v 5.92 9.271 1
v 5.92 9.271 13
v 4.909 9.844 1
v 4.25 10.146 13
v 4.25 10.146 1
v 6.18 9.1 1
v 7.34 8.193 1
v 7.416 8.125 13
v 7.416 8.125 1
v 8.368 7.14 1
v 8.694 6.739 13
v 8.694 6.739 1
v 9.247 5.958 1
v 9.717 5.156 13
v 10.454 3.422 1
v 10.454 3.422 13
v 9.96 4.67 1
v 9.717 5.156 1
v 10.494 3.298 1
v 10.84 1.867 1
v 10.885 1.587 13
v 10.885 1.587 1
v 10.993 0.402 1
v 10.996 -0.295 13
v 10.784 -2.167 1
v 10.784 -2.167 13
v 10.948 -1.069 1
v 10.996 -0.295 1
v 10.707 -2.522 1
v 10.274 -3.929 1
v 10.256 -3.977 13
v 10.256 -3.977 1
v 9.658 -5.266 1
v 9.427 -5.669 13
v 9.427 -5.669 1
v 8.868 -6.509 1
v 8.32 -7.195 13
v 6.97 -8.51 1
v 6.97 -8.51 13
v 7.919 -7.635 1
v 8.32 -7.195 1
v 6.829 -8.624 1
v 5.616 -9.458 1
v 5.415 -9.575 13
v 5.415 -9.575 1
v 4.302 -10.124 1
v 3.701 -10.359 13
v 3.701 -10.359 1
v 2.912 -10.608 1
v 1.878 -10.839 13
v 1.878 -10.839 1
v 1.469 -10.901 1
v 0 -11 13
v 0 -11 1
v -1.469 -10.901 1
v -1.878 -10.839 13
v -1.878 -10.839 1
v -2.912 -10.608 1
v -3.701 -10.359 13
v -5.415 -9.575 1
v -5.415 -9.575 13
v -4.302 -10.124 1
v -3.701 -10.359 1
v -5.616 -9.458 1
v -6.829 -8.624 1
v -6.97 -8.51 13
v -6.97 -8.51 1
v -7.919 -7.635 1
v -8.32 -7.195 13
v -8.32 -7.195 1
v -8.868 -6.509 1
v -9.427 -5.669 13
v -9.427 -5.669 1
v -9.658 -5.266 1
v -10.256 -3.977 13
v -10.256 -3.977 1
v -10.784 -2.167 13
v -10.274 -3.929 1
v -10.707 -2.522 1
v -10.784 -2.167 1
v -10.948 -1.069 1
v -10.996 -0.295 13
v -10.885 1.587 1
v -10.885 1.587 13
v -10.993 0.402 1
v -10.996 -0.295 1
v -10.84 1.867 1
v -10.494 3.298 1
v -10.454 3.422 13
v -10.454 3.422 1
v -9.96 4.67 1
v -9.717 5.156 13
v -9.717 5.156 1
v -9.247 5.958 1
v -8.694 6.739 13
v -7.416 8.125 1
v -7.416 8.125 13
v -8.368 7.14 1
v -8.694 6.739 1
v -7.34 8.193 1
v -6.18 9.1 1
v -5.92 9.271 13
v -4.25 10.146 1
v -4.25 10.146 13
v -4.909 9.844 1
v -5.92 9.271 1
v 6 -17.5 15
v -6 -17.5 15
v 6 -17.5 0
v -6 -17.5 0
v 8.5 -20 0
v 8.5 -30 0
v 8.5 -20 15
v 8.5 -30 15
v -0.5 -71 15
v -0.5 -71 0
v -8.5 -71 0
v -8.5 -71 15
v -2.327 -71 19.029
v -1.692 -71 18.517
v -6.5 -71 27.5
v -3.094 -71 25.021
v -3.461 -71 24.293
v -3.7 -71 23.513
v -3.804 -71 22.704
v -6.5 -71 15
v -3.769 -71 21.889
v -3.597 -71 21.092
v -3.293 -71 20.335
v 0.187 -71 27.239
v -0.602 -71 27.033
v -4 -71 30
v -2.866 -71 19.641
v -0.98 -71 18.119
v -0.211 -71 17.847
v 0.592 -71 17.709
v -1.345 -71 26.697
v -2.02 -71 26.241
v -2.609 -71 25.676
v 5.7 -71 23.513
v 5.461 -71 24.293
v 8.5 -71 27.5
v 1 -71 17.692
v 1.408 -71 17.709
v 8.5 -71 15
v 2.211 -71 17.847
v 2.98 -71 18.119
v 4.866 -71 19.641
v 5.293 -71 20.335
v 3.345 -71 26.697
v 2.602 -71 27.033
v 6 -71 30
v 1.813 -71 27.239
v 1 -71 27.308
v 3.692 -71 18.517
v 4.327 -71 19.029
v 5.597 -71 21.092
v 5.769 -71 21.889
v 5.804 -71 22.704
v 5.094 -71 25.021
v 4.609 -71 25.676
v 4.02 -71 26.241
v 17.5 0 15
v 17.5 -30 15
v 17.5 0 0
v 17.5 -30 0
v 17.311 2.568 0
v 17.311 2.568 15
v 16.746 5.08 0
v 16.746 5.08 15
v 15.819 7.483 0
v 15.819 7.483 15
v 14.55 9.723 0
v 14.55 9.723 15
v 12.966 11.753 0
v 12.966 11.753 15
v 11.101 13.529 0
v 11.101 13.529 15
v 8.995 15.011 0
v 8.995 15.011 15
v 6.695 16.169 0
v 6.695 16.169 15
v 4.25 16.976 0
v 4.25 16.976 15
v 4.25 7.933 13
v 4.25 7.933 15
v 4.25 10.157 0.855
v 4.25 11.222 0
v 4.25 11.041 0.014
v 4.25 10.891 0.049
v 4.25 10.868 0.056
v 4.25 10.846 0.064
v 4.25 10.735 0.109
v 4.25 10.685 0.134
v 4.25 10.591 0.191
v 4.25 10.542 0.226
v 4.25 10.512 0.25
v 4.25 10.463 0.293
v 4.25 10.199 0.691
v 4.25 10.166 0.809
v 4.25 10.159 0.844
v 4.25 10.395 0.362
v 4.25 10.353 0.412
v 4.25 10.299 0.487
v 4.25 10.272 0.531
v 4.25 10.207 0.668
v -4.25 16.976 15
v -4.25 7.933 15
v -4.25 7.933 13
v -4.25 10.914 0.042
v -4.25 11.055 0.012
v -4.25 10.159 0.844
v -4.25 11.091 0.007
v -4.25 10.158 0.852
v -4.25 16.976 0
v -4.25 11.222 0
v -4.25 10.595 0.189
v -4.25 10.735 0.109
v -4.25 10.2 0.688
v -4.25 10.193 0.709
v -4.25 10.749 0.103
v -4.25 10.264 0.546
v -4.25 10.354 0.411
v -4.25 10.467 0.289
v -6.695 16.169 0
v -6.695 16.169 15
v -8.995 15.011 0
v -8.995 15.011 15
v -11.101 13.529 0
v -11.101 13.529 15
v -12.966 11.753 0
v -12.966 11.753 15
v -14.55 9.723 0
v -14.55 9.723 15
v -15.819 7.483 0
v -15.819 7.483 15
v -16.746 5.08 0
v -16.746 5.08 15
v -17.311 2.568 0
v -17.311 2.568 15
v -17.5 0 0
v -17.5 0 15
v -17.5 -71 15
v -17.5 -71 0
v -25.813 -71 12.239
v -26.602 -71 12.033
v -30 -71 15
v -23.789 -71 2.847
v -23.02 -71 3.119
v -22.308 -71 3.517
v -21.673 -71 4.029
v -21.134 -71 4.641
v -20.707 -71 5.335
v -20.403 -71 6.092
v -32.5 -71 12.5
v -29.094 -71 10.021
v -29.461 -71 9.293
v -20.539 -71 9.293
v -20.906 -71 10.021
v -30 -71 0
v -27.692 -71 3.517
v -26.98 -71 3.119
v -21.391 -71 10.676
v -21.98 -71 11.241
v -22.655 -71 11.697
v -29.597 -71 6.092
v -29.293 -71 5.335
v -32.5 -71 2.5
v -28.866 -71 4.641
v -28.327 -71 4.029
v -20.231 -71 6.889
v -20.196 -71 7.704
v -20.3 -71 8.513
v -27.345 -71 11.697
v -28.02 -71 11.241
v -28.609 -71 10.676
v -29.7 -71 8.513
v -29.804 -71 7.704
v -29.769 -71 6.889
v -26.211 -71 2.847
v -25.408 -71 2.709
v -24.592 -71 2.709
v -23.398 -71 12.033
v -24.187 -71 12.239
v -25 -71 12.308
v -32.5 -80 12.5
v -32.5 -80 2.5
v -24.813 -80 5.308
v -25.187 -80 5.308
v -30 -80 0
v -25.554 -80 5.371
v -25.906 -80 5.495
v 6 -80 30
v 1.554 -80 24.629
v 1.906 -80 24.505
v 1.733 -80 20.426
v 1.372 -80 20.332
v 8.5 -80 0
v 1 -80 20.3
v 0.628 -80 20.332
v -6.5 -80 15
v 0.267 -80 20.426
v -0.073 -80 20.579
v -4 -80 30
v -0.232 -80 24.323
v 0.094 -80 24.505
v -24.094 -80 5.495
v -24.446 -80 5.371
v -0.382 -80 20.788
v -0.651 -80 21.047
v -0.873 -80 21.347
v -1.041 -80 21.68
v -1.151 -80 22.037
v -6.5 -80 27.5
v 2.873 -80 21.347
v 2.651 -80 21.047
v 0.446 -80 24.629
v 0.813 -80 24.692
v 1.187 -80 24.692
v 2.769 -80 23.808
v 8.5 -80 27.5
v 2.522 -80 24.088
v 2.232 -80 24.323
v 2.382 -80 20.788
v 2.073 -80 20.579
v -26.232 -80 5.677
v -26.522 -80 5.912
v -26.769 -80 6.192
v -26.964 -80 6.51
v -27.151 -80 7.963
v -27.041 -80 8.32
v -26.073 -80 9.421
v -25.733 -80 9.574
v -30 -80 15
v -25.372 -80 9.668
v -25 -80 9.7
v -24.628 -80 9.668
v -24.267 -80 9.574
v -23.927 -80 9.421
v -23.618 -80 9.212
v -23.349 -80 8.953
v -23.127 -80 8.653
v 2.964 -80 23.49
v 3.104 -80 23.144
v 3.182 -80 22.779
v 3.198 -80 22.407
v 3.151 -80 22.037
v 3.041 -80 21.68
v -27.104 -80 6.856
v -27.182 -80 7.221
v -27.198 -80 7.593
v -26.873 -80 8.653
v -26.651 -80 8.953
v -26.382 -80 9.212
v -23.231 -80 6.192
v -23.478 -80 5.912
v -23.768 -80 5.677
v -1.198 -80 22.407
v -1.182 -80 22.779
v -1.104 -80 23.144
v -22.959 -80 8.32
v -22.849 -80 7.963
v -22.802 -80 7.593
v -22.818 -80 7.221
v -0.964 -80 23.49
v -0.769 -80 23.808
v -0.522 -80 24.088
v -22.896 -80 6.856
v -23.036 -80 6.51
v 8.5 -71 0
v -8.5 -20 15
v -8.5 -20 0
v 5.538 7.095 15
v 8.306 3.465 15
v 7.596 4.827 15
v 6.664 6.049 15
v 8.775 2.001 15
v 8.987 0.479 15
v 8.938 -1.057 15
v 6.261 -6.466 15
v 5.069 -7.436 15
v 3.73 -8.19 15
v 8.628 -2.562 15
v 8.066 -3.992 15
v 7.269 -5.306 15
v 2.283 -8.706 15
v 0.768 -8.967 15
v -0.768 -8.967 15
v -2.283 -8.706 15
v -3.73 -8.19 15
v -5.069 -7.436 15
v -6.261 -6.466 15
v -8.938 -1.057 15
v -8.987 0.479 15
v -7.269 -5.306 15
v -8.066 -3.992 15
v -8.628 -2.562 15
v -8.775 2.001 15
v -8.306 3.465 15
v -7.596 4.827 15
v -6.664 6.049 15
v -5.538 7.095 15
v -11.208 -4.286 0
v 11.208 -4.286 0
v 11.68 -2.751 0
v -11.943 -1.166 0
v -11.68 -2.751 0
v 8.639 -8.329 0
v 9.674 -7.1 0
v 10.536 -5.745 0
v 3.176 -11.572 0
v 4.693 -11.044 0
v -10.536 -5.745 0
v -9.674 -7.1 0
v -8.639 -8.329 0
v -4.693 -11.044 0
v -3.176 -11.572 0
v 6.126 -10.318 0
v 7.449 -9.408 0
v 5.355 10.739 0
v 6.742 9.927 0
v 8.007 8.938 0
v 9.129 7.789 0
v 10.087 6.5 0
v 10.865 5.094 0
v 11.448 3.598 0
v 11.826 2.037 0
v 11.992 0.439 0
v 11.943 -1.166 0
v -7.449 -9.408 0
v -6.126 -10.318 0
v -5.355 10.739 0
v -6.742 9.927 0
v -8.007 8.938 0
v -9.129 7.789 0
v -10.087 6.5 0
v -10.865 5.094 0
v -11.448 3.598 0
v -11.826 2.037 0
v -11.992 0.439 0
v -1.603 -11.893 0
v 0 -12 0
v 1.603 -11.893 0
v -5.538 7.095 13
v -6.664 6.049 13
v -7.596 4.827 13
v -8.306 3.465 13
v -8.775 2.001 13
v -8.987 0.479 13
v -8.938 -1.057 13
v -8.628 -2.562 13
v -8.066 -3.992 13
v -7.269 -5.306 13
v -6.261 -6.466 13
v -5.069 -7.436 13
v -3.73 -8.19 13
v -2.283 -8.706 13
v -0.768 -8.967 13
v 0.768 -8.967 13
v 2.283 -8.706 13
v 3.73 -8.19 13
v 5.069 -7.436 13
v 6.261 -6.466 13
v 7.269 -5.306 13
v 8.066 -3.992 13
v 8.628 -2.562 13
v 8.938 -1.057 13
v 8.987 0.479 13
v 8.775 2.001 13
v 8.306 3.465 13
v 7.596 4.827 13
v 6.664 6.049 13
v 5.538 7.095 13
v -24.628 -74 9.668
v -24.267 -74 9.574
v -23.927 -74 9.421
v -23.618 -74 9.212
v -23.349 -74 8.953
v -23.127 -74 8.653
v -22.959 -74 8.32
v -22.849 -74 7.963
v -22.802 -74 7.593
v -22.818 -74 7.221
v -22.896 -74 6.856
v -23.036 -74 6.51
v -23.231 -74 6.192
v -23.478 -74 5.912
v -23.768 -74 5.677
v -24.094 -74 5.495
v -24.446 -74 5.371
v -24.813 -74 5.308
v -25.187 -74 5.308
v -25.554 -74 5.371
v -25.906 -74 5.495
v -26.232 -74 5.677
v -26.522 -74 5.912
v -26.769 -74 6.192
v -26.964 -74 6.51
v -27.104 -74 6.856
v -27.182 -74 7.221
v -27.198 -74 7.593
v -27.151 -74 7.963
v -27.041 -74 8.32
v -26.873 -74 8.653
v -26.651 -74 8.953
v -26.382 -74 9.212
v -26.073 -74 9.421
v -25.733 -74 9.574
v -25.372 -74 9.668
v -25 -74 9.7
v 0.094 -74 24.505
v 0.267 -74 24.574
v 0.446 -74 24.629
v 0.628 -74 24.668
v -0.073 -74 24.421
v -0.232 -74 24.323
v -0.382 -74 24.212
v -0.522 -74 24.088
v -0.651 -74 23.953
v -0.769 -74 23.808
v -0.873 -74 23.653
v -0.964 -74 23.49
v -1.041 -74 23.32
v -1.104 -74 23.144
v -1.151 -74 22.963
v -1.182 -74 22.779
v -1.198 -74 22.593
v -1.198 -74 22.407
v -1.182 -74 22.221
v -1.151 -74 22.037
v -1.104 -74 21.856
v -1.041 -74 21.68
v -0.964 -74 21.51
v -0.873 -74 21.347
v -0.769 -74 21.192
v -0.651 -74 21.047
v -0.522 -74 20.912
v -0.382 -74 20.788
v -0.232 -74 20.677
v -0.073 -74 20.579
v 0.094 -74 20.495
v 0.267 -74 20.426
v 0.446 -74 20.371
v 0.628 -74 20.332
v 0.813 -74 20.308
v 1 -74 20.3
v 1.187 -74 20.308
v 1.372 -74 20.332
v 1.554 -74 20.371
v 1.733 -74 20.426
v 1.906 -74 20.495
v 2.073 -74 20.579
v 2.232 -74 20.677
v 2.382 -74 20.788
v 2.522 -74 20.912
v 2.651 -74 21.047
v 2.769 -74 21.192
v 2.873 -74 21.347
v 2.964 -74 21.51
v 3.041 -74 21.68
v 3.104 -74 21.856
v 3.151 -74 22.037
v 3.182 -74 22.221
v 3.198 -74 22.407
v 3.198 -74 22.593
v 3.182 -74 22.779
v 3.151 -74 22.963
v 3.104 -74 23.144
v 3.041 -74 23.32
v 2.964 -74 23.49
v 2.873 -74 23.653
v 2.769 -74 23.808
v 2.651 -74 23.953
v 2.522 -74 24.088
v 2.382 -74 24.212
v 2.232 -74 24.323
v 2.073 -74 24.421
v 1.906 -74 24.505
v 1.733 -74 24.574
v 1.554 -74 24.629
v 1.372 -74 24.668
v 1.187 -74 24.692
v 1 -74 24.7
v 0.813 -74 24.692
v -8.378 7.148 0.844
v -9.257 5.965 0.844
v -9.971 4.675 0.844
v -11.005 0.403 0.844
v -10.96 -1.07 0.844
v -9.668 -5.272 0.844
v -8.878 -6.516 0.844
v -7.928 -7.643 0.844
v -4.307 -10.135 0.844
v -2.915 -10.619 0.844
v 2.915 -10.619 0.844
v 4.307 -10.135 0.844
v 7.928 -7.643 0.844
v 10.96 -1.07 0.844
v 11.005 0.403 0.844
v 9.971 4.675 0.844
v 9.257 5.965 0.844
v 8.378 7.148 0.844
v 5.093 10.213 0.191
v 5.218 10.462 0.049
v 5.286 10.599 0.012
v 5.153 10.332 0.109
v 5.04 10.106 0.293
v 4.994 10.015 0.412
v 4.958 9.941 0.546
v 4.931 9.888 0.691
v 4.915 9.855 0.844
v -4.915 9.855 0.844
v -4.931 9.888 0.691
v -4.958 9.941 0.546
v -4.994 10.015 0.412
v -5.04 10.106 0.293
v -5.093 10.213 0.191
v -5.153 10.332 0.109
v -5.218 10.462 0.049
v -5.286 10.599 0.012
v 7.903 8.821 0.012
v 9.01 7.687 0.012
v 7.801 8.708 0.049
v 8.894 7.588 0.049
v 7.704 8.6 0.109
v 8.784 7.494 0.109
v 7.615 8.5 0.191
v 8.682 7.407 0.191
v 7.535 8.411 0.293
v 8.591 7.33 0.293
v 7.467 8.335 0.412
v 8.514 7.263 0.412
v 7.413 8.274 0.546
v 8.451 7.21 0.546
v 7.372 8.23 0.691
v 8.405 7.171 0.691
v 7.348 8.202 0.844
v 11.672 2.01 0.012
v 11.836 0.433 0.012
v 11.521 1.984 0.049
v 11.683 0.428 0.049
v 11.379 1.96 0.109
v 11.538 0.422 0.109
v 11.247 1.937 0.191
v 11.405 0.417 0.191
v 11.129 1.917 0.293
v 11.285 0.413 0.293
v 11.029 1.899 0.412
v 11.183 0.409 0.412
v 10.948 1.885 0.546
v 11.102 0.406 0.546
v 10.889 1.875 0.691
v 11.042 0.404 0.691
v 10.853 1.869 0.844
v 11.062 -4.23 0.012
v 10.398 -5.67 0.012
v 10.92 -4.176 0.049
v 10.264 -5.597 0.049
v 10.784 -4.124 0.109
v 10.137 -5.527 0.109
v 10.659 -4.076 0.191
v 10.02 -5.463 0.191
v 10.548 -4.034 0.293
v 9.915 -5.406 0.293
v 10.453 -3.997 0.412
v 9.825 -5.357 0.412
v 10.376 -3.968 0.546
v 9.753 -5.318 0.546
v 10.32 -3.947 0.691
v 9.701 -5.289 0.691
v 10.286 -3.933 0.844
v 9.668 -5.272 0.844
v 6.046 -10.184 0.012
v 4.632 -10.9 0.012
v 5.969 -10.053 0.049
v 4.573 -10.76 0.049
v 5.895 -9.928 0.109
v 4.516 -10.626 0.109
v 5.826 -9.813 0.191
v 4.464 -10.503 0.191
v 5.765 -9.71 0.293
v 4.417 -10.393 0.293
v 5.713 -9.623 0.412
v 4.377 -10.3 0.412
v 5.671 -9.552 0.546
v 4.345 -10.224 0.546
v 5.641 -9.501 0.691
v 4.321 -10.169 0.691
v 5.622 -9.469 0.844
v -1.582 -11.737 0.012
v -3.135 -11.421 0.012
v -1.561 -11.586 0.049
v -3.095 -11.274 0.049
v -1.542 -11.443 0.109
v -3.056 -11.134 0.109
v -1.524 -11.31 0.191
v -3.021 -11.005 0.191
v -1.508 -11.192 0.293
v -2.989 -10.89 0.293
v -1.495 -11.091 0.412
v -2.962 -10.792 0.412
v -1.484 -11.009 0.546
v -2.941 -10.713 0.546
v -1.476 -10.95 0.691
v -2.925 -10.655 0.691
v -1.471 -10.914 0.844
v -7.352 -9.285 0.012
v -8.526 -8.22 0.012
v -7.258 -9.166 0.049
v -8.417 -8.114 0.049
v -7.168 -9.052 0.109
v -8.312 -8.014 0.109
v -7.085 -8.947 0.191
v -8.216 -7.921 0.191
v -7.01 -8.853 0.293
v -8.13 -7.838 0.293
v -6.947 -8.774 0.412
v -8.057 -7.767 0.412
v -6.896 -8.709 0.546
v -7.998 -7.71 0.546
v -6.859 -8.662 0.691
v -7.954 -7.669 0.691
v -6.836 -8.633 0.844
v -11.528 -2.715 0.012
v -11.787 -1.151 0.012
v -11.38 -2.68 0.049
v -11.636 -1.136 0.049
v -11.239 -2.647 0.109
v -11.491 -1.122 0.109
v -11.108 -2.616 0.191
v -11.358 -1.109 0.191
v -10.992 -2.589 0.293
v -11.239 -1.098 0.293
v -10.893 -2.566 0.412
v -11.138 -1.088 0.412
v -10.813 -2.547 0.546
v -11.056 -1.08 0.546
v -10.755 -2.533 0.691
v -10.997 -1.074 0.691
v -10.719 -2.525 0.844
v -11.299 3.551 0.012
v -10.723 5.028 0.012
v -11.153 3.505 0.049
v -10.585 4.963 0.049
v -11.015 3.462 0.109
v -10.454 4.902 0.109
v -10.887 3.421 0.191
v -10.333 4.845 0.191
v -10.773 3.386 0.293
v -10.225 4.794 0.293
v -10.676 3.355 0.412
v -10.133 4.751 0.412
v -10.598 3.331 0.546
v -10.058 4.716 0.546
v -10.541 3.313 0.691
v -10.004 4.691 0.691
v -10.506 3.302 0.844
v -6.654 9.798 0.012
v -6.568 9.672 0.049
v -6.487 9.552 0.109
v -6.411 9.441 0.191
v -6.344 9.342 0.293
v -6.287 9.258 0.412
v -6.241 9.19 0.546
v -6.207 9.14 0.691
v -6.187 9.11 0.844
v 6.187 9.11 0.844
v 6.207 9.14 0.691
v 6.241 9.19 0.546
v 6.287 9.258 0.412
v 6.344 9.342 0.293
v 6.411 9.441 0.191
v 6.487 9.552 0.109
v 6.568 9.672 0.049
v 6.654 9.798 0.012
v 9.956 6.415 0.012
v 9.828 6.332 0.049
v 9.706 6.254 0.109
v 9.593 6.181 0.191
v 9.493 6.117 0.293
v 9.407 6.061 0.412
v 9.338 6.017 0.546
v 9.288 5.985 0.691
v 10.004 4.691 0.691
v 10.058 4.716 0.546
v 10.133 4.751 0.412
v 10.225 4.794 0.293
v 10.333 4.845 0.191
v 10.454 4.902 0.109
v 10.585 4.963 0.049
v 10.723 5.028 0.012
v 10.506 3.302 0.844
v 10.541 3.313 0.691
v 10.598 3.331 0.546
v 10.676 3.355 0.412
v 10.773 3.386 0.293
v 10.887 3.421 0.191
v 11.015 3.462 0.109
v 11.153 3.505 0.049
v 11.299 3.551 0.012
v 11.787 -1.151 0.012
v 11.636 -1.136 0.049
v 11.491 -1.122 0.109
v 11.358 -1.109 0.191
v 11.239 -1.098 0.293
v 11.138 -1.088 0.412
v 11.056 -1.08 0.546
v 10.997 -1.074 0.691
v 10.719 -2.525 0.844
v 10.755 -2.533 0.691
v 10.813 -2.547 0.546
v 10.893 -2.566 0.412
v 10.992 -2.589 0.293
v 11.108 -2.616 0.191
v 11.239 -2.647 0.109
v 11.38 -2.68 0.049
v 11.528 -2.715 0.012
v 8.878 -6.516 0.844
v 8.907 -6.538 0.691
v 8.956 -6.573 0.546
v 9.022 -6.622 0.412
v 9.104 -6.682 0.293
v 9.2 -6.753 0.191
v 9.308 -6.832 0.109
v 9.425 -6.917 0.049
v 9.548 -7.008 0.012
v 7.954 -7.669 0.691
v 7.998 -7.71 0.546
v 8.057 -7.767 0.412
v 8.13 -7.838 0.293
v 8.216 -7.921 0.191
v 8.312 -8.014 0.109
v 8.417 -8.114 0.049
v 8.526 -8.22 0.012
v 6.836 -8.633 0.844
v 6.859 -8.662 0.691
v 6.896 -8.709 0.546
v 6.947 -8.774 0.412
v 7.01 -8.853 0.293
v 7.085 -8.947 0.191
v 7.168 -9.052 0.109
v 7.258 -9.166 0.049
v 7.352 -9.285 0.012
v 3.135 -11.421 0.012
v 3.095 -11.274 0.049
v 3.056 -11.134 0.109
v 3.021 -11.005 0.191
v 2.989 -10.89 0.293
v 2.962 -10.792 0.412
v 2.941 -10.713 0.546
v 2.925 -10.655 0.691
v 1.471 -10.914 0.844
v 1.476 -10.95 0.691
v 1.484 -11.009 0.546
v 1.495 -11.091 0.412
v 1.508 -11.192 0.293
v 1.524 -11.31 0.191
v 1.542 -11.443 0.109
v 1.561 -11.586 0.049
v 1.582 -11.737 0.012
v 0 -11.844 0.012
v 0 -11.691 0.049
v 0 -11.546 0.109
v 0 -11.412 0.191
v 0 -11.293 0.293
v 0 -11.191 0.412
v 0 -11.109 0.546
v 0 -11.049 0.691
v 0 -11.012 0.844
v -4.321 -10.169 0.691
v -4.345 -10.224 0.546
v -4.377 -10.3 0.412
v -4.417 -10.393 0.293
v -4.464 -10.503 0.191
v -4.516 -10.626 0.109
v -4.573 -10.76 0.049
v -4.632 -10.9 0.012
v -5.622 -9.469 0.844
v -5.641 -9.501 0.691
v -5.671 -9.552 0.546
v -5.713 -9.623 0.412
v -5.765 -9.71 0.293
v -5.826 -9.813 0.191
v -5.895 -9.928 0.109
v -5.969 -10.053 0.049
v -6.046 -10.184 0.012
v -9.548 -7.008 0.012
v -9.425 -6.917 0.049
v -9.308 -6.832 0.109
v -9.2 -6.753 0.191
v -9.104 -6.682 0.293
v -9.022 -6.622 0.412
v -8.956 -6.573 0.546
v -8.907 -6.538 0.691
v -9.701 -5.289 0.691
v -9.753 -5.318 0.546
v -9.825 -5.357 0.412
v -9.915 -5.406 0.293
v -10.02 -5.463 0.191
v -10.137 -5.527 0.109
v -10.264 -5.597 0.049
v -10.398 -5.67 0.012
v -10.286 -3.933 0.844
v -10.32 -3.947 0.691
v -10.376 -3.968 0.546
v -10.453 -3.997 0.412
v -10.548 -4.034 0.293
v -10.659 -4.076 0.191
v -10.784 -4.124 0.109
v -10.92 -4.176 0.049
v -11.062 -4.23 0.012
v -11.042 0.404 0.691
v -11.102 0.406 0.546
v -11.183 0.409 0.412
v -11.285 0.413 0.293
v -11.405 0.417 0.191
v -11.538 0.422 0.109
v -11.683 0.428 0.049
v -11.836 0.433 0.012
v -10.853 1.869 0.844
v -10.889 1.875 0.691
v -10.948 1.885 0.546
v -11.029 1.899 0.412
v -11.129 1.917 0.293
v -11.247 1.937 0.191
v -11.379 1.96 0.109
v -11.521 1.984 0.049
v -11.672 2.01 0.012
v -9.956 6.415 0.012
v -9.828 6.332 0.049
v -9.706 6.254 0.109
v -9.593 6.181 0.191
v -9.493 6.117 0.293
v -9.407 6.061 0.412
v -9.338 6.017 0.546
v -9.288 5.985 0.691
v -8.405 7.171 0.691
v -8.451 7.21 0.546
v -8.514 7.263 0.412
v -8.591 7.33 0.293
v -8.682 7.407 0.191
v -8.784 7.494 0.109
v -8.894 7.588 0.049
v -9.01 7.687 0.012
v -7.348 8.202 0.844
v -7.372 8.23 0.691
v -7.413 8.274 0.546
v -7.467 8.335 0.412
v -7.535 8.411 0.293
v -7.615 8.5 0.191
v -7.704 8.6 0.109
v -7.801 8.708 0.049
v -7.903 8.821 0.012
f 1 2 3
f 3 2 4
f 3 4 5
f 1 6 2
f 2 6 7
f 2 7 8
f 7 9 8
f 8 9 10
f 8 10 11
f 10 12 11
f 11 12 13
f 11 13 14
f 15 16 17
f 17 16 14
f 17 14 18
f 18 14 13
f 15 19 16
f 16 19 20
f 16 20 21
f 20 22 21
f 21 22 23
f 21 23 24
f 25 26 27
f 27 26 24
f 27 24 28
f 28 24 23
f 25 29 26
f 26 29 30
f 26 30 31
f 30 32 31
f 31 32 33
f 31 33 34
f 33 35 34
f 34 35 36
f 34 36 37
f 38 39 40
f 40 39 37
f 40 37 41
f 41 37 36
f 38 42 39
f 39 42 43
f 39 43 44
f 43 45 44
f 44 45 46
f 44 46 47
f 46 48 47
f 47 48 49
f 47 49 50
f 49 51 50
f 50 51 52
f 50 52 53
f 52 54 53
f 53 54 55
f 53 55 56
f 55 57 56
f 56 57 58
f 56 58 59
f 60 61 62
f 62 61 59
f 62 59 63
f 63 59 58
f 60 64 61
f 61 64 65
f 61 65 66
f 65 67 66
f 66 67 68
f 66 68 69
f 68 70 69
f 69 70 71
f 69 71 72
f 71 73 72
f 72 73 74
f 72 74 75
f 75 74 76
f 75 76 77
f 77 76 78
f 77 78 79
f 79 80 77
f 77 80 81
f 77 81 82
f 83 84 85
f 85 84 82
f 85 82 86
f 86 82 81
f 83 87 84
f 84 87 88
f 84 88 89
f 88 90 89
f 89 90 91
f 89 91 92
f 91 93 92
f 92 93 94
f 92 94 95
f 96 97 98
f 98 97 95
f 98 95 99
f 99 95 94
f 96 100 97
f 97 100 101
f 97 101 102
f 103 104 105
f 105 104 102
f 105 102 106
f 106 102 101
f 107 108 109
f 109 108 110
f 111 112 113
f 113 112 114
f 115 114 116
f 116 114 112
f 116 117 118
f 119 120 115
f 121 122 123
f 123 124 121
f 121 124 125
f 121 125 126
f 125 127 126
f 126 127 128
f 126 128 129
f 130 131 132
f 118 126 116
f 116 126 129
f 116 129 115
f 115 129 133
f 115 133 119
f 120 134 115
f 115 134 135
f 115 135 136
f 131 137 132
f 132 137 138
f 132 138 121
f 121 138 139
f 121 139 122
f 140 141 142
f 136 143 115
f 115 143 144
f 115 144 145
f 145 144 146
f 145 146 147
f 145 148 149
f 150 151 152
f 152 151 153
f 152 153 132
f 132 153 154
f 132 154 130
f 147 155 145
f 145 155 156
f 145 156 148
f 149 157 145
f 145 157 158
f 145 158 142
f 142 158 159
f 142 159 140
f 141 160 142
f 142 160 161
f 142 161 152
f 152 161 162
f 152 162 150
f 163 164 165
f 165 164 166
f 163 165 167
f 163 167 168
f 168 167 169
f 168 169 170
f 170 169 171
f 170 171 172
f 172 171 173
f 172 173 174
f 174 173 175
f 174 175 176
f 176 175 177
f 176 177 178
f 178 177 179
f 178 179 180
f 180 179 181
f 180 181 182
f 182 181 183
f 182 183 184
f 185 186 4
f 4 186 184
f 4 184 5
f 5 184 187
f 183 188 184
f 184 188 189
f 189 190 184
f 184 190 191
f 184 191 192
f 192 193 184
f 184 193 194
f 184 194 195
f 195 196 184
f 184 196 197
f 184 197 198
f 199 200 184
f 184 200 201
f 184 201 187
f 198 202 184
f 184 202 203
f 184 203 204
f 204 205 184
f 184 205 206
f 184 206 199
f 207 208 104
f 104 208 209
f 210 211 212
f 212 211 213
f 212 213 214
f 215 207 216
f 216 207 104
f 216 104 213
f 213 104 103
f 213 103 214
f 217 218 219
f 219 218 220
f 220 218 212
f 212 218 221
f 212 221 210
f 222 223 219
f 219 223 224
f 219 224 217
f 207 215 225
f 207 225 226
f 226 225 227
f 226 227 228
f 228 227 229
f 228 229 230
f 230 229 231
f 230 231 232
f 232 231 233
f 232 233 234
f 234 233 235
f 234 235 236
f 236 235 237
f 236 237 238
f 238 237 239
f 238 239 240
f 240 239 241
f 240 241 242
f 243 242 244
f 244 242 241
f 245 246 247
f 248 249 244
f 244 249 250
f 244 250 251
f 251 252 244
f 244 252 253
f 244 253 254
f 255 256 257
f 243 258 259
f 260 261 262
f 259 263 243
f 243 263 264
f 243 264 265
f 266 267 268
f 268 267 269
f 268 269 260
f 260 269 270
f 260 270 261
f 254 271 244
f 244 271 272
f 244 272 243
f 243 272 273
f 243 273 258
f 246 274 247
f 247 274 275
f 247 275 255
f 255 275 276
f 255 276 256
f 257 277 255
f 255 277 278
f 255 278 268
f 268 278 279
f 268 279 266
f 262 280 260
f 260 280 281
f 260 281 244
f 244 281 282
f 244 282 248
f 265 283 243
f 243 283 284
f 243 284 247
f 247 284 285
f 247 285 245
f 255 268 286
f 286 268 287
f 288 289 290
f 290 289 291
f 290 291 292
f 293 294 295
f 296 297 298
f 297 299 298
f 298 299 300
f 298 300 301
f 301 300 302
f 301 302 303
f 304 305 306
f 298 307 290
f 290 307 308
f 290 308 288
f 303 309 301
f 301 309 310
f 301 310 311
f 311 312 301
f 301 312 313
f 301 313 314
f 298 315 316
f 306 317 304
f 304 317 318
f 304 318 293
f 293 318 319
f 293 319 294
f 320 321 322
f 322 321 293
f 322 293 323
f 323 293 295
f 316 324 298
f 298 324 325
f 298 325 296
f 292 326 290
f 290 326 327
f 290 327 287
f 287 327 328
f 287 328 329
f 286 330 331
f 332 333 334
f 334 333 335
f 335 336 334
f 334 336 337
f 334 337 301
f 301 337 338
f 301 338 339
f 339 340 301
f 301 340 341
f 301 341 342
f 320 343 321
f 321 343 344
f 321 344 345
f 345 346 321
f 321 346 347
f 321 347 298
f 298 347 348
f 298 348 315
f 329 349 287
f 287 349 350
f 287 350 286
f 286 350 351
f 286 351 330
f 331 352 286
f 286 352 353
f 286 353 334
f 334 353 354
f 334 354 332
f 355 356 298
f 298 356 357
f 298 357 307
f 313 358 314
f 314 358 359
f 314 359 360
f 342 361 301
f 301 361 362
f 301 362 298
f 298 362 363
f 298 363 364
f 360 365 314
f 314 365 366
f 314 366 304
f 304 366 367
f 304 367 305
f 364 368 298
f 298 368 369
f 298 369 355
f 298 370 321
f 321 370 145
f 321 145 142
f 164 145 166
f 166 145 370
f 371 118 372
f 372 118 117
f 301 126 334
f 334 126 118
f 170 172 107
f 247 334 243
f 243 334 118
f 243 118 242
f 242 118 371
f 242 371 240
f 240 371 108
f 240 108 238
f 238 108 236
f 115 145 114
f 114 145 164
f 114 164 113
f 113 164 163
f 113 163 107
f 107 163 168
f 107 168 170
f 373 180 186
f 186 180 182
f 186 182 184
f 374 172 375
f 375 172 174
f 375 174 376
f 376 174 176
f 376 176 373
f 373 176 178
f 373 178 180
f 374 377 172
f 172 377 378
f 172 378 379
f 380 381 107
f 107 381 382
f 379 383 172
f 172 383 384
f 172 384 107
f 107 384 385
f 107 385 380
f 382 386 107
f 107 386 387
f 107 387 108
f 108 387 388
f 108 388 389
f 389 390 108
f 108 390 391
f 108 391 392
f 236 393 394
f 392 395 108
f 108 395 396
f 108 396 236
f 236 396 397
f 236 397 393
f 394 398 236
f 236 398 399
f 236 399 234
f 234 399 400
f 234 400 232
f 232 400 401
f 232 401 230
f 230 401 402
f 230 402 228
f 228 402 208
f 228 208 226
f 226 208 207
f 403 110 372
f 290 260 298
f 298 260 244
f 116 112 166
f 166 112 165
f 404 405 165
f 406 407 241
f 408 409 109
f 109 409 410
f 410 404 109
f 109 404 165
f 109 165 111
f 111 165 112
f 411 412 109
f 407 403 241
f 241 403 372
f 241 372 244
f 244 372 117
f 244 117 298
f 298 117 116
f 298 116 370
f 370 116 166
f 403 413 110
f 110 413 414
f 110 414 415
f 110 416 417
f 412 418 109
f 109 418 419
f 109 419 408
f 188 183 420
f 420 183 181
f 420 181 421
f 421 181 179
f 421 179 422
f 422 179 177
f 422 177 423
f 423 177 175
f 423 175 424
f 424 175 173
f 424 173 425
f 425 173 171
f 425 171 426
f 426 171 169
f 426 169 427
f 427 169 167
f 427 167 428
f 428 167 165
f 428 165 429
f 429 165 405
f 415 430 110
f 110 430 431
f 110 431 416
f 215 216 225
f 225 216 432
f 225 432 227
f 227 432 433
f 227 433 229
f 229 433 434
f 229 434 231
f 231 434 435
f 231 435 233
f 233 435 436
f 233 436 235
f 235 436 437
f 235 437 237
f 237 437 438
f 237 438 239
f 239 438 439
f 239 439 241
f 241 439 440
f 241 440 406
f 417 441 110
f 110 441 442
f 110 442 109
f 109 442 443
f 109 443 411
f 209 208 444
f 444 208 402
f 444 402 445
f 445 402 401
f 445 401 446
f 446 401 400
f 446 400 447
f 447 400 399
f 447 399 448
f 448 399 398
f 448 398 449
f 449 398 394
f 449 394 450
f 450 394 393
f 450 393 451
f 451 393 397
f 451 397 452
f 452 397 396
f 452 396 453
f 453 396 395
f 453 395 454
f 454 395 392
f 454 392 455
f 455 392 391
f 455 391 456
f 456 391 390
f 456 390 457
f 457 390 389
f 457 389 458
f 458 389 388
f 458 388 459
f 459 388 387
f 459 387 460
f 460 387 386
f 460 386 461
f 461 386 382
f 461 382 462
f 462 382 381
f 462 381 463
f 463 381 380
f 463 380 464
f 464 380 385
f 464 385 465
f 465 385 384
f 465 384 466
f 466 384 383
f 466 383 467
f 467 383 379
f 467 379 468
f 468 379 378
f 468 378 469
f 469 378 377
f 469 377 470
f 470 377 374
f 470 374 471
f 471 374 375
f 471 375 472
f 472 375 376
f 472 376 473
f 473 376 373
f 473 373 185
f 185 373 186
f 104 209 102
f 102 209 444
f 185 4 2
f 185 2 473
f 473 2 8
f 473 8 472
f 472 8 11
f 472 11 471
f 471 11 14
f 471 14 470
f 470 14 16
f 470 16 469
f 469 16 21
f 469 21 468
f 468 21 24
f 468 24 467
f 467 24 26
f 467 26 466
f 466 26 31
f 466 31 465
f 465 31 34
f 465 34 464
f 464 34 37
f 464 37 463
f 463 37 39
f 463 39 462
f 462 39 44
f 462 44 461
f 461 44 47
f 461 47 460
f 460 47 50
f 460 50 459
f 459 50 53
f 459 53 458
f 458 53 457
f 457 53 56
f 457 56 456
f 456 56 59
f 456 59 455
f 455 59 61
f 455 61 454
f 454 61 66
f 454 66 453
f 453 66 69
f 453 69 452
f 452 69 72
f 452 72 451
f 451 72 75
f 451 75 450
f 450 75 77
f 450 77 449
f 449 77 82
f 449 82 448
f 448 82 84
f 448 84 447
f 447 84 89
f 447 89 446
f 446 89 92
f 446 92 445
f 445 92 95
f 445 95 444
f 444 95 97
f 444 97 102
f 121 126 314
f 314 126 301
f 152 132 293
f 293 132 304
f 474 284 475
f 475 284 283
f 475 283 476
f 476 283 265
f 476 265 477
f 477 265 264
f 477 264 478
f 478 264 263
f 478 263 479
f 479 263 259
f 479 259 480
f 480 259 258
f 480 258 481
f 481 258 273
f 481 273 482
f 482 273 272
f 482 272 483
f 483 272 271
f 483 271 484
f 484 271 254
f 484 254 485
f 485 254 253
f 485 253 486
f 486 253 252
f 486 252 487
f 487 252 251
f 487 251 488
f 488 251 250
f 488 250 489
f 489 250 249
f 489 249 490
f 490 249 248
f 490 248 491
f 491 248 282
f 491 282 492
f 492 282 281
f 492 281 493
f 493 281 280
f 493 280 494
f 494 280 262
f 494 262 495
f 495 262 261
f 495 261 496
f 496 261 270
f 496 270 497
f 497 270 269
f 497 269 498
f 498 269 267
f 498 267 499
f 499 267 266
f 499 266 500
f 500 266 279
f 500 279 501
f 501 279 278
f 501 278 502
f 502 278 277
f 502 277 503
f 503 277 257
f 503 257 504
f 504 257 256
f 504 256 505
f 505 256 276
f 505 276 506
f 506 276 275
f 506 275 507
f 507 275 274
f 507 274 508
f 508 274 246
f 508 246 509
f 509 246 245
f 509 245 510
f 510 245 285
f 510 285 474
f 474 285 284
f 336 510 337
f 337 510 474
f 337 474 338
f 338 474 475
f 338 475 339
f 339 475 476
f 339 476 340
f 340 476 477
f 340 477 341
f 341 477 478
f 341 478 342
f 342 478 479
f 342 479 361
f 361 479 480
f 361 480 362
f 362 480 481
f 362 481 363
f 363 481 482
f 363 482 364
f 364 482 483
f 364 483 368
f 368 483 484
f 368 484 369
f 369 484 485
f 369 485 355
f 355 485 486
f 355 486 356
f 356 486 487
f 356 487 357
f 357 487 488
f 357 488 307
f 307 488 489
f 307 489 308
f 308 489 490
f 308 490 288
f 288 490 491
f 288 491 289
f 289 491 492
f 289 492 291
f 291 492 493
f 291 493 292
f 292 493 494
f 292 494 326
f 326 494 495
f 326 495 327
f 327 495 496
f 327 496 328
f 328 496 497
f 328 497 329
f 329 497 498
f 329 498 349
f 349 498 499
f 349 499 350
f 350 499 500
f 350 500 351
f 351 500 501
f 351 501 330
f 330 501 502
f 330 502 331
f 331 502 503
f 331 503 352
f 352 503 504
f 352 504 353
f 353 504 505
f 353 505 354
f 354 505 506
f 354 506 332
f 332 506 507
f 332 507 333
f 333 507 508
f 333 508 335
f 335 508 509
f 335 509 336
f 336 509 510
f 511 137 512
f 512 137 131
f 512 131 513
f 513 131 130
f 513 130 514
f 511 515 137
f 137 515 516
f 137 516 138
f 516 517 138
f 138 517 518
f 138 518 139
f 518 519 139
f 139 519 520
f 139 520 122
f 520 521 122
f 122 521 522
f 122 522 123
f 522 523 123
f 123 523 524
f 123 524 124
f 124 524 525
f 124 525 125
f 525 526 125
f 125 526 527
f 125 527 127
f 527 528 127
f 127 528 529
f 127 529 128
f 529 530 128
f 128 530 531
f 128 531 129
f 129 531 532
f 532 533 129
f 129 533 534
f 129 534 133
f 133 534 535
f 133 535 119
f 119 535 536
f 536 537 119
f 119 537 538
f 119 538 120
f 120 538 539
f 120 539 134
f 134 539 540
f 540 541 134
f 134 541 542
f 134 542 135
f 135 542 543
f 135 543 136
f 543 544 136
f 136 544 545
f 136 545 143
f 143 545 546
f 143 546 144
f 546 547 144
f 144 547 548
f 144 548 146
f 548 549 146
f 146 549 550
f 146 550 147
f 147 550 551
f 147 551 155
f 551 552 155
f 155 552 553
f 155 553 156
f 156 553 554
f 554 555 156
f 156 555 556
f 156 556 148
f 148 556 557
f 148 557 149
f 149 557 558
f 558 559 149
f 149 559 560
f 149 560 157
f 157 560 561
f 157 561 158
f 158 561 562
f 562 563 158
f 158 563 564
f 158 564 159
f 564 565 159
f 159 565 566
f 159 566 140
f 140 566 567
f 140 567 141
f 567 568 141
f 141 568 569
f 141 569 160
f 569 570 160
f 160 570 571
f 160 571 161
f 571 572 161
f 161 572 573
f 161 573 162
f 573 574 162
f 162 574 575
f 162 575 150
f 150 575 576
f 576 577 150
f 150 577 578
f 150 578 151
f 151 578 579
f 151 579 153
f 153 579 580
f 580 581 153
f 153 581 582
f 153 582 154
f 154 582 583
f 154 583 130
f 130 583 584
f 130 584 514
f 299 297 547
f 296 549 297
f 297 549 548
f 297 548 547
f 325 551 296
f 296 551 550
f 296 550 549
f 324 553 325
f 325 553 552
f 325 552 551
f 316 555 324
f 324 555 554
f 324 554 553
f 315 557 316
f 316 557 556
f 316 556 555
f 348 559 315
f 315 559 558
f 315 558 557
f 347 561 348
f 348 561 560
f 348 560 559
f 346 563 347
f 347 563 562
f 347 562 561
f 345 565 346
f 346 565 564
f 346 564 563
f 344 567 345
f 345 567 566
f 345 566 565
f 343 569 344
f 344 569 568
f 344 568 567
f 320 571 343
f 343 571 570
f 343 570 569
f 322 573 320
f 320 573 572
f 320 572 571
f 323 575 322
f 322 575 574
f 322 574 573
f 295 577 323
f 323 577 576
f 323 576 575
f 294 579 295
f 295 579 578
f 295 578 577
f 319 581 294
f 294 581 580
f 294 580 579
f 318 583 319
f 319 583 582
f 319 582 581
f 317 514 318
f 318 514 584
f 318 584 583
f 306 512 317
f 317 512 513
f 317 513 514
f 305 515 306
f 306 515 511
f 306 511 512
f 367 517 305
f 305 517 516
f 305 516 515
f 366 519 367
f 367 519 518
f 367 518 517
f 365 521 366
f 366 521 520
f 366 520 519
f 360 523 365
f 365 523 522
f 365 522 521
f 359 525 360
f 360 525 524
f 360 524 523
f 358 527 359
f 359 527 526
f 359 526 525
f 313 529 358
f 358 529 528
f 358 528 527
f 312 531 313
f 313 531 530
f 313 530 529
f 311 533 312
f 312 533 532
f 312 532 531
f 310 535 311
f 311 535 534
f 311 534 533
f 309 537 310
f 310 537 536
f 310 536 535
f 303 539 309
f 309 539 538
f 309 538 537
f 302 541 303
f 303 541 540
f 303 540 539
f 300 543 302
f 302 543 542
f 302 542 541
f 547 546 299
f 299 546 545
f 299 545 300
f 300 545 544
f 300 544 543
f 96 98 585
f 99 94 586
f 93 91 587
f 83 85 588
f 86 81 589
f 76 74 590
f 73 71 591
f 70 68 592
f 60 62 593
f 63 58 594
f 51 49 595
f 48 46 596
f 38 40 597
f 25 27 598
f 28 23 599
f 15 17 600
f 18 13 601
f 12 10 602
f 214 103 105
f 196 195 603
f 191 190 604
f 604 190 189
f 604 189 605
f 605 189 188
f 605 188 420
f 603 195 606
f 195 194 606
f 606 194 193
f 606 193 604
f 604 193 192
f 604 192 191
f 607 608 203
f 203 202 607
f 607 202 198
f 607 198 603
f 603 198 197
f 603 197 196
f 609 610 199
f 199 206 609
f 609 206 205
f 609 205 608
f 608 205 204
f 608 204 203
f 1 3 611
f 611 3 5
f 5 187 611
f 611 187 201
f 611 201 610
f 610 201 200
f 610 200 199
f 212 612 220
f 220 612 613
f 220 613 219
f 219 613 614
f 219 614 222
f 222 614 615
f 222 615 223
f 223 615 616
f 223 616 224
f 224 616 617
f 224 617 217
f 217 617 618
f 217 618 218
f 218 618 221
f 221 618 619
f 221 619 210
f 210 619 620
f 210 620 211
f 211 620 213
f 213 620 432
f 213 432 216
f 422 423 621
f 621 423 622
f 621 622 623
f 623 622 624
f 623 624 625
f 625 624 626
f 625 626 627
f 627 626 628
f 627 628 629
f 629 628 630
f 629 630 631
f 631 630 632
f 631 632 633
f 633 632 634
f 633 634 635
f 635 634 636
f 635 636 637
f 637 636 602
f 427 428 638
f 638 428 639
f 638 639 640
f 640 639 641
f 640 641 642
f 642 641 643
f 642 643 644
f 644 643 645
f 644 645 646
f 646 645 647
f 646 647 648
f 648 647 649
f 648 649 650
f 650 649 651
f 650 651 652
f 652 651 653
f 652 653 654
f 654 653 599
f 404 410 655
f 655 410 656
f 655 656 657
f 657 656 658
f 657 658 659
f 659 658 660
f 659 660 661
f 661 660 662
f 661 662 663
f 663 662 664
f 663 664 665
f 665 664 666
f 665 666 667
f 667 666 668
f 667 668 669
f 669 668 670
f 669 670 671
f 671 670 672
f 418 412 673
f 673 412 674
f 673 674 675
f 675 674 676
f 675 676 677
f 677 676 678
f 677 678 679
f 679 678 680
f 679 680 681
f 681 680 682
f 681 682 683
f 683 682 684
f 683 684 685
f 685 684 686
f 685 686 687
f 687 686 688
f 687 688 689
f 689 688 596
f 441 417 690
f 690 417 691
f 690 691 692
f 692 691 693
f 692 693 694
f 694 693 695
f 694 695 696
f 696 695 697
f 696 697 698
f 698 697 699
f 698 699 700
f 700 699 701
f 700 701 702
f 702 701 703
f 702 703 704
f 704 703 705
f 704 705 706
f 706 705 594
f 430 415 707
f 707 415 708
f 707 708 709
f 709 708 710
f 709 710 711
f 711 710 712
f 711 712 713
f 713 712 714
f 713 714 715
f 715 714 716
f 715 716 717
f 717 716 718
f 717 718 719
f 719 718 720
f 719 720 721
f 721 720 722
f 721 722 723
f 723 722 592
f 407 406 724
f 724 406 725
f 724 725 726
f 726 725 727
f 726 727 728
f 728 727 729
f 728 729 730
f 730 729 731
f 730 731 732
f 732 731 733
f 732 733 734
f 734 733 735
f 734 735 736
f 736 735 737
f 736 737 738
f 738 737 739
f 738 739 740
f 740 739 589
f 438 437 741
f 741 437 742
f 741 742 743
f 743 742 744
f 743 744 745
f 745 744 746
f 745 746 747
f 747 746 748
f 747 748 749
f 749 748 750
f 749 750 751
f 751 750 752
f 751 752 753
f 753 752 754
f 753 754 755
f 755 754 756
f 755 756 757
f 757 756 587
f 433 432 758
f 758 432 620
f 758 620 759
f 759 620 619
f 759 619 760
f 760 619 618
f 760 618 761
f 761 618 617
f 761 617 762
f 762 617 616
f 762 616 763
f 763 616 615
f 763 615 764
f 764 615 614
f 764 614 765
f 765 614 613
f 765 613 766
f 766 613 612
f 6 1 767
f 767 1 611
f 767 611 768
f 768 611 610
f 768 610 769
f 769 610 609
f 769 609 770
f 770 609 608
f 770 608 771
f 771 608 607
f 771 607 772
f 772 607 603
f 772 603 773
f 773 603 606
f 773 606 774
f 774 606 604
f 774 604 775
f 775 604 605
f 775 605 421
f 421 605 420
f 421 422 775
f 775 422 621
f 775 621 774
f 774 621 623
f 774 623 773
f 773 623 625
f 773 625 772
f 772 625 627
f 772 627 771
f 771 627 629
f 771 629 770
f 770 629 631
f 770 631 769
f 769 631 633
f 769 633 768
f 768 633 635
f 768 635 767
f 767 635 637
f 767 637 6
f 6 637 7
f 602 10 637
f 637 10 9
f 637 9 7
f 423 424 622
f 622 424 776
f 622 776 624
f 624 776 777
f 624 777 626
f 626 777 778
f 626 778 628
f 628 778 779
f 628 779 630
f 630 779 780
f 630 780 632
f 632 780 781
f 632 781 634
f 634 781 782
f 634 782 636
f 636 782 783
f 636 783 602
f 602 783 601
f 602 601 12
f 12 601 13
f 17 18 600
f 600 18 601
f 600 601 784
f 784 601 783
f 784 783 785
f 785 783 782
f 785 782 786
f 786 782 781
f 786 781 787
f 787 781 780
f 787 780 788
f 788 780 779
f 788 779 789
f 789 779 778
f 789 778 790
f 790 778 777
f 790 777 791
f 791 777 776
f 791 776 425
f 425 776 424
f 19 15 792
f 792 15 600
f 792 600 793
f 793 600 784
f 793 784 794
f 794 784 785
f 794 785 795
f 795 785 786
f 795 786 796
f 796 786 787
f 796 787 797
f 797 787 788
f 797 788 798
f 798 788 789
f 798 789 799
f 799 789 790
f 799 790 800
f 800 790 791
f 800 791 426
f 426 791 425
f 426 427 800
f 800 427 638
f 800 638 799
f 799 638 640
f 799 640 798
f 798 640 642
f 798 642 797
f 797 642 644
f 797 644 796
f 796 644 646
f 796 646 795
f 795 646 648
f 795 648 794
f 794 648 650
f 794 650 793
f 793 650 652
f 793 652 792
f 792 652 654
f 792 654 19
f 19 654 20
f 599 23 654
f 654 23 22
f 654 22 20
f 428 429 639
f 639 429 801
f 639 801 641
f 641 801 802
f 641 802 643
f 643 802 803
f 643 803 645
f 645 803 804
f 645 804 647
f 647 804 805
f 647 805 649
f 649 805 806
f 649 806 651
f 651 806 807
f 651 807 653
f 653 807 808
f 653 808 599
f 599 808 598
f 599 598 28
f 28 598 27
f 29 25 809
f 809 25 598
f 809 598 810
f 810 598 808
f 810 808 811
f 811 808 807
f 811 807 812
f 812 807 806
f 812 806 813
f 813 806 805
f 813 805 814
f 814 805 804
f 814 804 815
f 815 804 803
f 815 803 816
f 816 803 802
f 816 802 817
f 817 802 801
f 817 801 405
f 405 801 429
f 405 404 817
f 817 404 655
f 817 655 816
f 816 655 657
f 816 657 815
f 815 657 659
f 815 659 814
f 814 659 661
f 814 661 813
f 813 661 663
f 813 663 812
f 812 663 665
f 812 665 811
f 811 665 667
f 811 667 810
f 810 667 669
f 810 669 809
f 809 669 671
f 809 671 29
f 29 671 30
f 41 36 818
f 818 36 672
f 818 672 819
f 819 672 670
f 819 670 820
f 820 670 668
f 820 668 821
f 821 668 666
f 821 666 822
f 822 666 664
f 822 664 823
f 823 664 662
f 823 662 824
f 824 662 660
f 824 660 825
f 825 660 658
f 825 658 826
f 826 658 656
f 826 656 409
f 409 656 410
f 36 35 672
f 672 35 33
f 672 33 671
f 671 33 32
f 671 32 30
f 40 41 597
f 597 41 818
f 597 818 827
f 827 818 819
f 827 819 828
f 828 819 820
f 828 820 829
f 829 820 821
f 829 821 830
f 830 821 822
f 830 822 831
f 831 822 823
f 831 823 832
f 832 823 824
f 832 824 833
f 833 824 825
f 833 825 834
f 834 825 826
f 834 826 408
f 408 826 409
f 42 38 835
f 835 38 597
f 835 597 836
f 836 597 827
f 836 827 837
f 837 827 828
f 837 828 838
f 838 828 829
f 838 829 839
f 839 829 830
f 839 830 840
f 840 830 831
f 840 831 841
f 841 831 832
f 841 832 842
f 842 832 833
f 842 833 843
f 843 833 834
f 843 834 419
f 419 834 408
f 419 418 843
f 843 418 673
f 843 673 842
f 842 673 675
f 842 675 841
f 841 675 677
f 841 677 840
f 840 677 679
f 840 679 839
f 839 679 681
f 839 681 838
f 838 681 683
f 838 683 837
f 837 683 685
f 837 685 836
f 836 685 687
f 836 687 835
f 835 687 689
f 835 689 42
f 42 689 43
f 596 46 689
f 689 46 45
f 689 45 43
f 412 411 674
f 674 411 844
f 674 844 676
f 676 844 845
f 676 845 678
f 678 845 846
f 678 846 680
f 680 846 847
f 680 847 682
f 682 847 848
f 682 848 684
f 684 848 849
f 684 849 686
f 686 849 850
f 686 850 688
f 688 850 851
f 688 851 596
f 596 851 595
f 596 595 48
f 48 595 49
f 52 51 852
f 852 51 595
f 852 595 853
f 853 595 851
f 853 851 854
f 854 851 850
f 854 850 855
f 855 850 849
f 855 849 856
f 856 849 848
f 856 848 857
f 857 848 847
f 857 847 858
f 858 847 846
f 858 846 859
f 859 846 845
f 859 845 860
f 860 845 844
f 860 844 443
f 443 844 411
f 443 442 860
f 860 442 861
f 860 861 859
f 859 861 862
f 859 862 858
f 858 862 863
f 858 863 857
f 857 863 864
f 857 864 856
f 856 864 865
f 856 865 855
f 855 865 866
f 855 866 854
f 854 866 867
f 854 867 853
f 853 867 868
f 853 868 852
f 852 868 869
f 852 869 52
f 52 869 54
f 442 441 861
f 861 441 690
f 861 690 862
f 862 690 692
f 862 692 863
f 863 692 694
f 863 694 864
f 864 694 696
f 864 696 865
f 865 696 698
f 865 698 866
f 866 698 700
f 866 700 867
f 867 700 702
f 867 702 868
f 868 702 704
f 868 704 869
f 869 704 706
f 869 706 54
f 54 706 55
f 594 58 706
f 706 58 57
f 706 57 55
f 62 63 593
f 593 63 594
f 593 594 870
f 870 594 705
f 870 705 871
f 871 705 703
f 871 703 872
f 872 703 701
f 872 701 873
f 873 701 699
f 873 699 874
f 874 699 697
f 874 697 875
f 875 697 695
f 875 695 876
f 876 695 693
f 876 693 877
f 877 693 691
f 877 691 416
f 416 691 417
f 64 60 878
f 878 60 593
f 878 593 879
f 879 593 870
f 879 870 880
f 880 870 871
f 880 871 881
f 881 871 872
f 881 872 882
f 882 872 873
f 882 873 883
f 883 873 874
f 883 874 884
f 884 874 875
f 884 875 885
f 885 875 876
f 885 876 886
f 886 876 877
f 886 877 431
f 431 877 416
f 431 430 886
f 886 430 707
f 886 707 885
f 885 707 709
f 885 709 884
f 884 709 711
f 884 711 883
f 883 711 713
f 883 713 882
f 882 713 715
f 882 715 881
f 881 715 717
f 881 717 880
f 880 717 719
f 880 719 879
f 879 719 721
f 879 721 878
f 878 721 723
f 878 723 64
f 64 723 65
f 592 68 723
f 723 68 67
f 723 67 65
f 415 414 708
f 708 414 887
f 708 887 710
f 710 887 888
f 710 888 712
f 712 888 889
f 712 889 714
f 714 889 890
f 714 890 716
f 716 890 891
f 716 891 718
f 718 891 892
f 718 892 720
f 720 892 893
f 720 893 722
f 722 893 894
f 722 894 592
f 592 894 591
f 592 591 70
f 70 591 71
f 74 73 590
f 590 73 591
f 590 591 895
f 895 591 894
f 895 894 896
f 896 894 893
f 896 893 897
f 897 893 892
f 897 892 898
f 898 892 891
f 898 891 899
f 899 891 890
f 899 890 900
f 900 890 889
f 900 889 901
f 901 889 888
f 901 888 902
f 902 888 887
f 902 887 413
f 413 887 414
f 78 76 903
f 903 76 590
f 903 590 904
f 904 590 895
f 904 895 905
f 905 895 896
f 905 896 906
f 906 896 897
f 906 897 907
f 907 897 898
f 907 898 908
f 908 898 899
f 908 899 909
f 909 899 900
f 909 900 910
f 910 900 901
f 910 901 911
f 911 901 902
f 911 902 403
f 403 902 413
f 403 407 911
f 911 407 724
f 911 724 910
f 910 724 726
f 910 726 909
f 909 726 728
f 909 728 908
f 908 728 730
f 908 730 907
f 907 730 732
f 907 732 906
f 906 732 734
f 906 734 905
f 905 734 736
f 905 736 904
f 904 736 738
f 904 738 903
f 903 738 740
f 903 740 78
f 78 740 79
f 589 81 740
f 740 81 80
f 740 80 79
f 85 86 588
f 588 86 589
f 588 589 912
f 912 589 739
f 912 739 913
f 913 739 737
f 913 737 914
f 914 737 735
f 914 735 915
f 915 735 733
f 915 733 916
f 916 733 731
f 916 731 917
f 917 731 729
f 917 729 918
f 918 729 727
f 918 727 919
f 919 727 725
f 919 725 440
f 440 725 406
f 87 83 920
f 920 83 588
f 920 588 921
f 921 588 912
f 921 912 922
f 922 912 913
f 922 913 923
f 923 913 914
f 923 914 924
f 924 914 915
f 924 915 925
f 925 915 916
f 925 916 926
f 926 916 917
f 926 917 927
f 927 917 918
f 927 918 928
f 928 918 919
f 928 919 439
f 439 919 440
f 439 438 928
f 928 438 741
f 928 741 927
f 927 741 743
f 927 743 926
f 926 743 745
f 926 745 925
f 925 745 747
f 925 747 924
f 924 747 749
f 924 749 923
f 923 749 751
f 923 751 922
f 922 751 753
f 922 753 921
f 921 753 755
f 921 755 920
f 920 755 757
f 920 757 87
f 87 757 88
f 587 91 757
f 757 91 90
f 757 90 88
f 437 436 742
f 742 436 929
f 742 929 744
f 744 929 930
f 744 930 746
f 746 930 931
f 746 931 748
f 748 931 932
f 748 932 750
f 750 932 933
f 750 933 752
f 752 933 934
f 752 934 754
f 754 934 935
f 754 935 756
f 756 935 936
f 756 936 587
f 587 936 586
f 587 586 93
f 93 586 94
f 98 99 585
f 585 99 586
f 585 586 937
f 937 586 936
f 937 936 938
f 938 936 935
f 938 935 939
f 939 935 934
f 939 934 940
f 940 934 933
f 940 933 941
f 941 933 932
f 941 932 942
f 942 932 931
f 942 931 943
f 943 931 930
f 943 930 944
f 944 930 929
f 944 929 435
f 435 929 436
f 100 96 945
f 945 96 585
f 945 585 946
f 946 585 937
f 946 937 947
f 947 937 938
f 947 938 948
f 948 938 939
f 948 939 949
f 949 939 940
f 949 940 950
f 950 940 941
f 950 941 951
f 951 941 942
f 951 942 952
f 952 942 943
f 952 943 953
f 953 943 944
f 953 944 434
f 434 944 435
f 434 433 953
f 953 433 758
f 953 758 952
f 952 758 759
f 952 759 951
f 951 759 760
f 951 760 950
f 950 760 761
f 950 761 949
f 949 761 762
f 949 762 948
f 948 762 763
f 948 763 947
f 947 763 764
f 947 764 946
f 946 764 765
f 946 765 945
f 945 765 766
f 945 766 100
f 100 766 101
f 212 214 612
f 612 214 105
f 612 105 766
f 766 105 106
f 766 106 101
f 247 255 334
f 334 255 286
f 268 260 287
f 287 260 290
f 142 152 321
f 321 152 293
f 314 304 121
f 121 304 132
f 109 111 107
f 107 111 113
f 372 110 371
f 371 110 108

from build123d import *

# Parameters (mm, degrees)
SKETCH1_W           = 15
SKETCH1_H           = 9
BOSS_EXTRUDE1_DEPTH = 15
BOSS_EXTRUDE3_START = 2
BOSS_EXTRUDE3_DEPTH = 2
SKETCH7_W           = 15
SKETCH7_H           = 9
BOSS_EXTRUDE4_DEPTH = 15
FILLET1_R           = 1
CHAMFER1_SIZE       = 2.5


with BuildPart() as part:
    # Sketch1 → Boss-Extrude1 (new body)
    with BuildSketch(Plane.XY):
        with BuildLine():
            ThreePointArc((0, -17.5), (12.374368671, -12.374368671), (17.5, 0))
            Line((17.5, 0), (11, 0))
            ThreePointArc((11, 0), (7.778174593, -7.778174593), (0, -11))
            Line((0, -11), (0, -17.5))
        make_face()
        with BuildLine():
            ThreePointArc((-17.5, 0), (-12.374368671, -12.374368671), (0, -17.5))
            Line((0, -17.5), (0, -11))
            ThreePointArc((0, -11), (-7.778174593, -7.778174593), (-11, 0))
            Line((-11, 0), (-17.5, 0))
        make_face()
        with BuildLine():
            ThreePointArc((-4.25, 16.976086121), (-13.795379661, 10.767427734), (-17.5, 0))
            Line((-17.5, 0), (-11, 0))
            ThreePointArc((-11, 0), (-9.158329542, 6.093028803), (-4.25, 10.145811944))
            Line((-4.25, 10.145811944), (-4.25, 16.976086121))
        make_face()
        with BuildLine():
            Line((11, 0), (17.5, 0))
            ThreePointArc((17.5, 0), (13.795379661, 10.767427734), (4.25, 16.976086121))
            Line((4.25, 16.976086121), (4.25, 10.145811944))
            ThreePointArc((4.25, 10.145811944), (9.158329542, 6.093028803), (11, 0))
        make_face()
        with BuildLine():
            Line((8.5, -71), (17.5, -30))
            Line((17.5, -30), (8.5, -30))
            Line((8.5, -30), (-0.5, -71))
            Line((-0.5, -71), (-8.5, -71))
            Line((-8.5, -71), (-8.5, -17.5))
            Line((-8.5, -17.5), (0, -17.5))
            ThreePointArc((0, -17.5), (-12.374368671, -12.374368671), (-17.5, 0))
            Line((-17.5, 0), (-17.5, -71))
            Line((-17.5, -71), (-17.5, -80))
            Line((-17.5, -80), (8.5, -80))
            Line((8.5, -80), (8.5, -71))
        make_face()
        with BuildLine():
            Line((17.5, -30), (17.5, 0))
            ThreePointArc((17.5, 0), (12.374368671, -12.374368671), (0, -17.5))
            Line((0, -17.5), (8.5, -17.5))
            Line((8.5, -17.5), (8.5, -30))
            Line((8.5, -30), (17.5, -30))
        make_face()
        with Locations((-25, -75.5)):
            Rectangle(SKETCH1_W, SKETCH1_H)
    extrude(amount=BOSS_EXTRUDE1_DEPTH)

    # Sketch6 → Boss-Extrude3 (add)
    with BuildSketch(Plane(origin=(0, 0, 15), x_dir=(-1, 0, 0), z_dir=(0, 0, -1)).offset(BOSS_EXTRUDE3_START)):
        with BuildLine():
            Line((-4.25, 7.933315826), (-4.25, 10.145811944))
            ThreePointArc((-4.25, 10.145811944), (-6.093028803, -9.158329542), (11, 0))
            ThreePointArc((11, 0), (9.158329542, 6.093028803), (4.25, 10.145811944))
            Line((4.25, 10.145811944), (4.25, 7.933315826))
            ThreePointArc((4.25, 7.933315826), (7.721722606, 4.623310502), (9, 0))
            ThreePointArc((9, 0), (-4.623310502, -7.721722606), (-4.25, 7.933315826))
        make_face()
    extrude(amount=-BOSS_EXTRUDE3_DEPTH)

    # Sketch7 → Boss-Extrude4 (add)
    with BuildSketch(Plane.XY.offset(15)):
        with Locations((1, -75.5)):
            Rectangle(SKETCH7_W, SKETCH7_H)
    extrude(amount=BOSS_EXTRUDE4_DEPTH)

    # Sketch11 → Cut-Revolve4 (revolve, cut)
    with BuildSketch(Plane.ZY.offset(25)):
        Polygon((7.5, -71), (7.5, -80), (9.7, -80), (9.7, -74), (12.307860213, -71), align=None)
    revolve(axis=Axis((-25, -71, 7.5), (0, -1, 0)), mode=Mode.SUBTRACT)

    # Sketch10 → Cut-Revolve3 (revolve, cut)
    with BuildSketch(Plane.XY.offset(22.5), mode=Mode.PRIVATE) as cut_revolve3_sk:
        Polygon((1, -71), (5.807860213, -71), (3.2, -74), (3.2, -80), (1, -80), align=None)
    revolve(cut_revolve3_sk.sketch.rotate(Axis((1, -80, 22.5), (0, 1, 0)), 90), axis=Axis((1, -80, 22.5), (0, 1, 0)), mode=Mode.SUBTRACT)

    # Fillet1
    fillet1_edges = [part.edges().sort_by_distance(p)[0] for p in [
        (0, -11, 0),
    ]]
    fillet(fillet1_edges, radius=FILLET1_R)

    # Chamfer1
    chamfer1_edges = [part.edges().sort_by_distance(p)[0] for p in [
        (-32.5, -75.5, 0),
        (-8.5, -17.5, 7.5),
        (8.5, -17.5, 7.5),
        (-32.5, -75.5, 15),
        (-6.5, -75.5, 30),
        (8.5, -75.5, 30),
    ]]
    chamfer(chamfer1_edges, length=CHAMFER1_SIZE)


solid = part.part
